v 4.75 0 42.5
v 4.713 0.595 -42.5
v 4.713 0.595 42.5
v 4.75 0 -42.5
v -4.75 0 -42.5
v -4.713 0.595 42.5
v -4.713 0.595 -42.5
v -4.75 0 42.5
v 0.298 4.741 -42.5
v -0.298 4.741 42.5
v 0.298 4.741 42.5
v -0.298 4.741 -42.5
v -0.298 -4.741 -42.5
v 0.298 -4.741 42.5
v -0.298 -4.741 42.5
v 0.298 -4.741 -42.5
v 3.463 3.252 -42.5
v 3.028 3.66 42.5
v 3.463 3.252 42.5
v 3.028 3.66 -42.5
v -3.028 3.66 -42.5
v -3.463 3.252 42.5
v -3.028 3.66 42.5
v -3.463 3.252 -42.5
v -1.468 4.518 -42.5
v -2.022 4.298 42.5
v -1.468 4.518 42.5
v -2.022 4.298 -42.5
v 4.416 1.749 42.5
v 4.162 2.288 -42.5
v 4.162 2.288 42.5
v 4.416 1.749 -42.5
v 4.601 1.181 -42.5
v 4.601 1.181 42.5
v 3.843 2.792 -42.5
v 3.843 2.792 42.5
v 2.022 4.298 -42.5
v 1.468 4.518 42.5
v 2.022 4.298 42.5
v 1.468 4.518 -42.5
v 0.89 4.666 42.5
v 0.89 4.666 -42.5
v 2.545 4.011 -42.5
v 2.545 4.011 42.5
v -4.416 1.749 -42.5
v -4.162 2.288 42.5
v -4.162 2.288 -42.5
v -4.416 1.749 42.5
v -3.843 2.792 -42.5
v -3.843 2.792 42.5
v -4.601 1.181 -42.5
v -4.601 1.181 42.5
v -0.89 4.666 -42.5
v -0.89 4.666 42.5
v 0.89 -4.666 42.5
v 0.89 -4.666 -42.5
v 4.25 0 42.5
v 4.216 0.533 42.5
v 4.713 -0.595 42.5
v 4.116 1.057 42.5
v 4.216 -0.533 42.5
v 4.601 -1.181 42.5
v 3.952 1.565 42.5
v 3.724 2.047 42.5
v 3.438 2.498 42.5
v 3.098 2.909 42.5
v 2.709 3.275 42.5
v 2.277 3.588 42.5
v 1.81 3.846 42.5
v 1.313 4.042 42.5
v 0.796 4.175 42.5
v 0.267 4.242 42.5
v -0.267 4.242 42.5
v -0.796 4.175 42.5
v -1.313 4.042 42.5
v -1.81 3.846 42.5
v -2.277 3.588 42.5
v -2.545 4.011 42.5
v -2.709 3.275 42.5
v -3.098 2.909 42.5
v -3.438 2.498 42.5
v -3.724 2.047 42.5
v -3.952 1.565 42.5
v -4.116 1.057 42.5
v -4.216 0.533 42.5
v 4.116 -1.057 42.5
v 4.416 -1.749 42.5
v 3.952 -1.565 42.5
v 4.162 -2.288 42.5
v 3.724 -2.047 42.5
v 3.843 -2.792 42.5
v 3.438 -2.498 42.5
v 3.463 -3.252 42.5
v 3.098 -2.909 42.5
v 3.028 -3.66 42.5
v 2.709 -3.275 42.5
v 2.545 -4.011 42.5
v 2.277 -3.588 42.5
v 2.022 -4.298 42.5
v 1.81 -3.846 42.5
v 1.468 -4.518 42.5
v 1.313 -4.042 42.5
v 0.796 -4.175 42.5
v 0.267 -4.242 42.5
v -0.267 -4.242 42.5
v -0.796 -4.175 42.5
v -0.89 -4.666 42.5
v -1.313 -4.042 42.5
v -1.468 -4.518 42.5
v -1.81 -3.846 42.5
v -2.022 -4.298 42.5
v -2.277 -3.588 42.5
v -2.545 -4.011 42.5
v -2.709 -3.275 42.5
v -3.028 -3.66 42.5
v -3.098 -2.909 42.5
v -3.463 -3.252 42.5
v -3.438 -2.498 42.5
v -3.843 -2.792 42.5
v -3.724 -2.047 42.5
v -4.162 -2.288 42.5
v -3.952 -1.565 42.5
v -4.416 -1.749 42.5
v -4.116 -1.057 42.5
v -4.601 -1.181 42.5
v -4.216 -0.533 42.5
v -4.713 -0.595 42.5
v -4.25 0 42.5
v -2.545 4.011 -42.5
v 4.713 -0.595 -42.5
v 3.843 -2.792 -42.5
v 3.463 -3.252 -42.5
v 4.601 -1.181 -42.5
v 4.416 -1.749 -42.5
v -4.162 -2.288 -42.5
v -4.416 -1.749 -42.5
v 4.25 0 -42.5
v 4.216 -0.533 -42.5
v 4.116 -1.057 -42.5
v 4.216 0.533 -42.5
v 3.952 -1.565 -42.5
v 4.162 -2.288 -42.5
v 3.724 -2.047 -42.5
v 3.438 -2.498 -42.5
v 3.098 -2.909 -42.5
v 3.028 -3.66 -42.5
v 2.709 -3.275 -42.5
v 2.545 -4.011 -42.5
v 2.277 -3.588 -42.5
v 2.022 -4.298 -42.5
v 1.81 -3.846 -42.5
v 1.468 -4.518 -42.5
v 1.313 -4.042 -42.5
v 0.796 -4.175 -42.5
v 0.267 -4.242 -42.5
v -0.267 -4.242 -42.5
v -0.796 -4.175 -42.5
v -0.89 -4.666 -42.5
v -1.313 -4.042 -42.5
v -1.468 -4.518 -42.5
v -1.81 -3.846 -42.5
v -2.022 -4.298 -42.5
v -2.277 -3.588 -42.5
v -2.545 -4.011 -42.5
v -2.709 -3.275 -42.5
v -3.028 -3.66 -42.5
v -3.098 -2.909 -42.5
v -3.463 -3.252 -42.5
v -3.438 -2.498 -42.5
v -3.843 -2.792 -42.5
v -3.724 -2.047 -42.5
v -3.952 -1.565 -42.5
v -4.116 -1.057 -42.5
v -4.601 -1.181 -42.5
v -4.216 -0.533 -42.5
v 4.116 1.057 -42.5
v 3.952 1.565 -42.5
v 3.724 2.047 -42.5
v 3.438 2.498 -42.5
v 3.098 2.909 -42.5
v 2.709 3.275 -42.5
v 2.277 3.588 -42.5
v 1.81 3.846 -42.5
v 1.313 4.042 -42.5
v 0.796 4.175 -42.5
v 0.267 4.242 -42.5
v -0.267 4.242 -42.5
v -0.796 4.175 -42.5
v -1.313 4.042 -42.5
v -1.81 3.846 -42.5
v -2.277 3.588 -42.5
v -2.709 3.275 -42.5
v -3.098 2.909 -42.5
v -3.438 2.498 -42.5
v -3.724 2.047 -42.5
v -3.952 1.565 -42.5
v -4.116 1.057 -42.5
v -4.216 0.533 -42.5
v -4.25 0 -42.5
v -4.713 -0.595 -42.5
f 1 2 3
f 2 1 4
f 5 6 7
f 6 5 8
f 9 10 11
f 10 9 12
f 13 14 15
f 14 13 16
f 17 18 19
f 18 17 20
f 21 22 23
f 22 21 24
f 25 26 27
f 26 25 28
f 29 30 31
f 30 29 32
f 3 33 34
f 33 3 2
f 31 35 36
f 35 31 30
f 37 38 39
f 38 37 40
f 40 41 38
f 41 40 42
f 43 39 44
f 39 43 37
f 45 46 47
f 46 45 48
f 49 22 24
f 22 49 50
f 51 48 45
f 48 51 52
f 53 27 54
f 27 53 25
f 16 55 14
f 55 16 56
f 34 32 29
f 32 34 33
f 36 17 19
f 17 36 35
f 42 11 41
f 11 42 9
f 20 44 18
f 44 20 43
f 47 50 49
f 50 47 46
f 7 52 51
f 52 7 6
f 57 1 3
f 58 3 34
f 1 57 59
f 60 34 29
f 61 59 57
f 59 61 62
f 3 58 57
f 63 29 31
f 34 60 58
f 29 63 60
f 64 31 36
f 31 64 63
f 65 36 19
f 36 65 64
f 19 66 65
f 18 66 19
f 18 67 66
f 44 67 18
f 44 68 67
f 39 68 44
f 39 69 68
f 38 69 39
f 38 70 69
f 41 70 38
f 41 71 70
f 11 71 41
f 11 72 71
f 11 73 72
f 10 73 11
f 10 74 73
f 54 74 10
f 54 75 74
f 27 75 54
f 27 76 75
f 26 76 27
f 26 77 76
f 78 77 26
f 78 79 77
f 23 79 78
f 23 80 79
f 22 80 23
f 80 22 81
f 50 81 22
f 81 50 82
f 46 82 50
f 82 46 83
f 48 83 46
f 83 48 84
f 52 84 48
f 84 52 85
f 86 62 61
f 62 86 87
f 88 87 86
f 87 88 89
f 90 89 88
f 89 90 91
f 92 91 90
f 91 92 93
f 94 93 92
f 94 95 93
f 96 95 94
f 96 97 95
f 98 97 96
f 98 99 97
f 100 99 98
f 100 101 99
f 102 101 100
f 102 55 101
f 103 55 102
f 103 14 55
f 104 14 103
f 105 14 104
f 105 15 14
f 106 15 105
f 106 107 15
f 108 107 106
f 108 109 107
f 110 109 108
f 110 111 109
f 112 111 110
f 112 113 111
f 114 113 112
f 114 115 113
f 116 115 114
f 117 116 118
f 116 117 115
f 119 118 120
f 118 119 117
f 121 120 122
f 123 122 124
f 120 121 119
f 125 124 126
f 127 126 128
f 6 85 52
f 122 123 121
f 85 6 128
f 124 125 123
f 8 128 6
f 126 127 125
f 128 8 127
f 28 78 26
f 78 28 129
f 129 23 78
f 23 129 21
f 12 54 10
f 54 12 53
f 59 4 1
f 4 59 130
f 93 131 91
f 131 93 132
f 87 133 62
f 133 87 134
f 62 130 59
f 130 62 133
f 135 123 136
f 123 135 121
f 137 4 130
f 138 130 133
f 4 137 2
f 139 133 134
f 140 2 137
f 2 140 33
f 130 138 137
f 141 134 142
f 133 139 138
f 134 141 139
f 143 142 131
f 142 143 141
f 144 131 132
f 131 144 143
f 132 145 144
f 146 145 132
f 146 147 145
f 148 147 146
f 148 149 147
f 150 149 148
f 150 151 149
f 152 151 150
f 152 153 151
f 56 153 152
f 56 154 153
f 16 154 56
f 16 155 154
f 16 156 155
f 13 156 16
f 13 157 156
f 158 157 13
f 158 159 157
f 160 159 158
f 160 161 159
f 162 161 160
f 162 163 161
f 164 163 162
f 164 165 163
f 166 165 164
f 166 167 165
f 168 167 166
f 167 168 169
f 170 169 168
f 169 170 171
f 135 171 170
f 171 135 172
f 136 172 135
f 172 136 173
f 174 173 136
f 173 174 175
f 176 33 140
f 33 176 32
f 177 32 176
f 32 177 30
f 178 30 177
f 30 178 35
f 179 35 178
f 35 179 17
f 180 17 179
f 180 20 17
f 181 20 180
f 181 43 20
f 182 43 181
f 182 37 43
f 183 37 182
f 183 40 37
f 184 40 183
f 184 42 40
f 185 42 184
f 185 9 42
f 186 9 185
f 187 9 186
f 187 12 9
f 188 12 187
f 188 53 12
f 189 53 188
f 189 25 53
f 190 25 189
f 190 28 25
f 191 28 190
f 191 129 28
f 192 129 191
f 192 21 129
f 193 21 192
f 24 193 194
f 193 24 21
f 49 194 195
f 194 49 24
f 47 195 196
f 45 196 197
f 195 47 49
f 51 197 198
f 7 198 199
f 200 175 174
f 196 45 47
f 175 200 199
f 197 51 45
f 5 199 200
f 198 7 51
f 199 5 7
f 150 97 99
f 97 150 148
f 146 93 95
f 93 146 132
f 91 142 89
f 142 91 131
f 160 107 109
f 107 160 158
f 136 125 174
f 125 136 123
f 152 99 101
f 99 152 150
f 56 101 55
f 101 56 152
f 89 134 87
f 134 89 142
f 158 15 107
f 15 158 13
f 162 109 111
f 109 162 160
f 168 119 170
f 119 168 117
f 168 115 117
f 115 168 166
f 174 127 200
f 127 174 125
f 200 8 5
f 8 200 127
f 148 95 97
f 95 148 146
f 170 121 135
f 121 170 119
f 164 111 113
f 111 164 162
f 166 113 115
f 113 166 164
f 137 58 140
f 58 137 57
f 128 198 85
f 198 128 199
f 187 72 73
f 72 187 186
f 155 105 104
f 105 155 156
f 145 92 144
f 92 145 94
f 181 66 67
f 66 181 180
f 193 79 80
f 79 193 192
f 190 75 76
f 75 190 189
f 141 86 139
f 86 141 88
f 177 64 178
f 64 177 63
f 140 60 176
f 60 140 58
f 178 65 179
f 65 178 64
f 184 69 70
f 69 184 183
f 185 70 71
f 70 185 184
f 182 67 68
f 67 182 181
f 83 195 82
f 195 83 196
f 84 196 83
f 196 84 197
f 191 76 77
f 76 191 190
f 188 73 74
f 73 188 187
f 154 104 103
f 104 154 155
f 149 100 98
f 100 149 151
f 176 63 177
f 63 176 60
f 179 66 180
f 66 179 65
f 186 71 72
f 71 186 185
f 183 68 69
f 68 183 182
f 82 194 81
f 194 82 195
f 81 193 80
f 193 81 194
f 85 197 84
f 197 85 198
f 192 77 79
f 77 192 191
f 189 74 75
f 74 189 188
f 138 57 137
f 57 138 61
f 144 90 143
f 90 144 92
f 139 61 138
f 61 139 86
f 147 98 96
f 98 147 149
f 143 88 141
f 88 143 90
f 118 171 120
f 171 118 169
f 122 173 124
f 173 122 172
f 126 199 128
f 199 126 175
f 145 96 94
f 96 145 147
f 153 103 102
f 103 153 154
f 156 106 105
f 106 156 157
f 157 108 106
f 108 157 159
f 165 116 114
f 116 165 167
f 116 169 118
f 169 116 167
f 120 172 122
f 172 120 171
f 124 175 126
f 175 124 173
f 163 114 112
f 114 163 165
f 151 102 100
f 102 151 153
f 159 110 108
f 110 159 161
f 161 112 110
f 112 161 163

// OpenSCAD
$fn = 50;


difference() {
	union() {
		translate(v = [0, 0, -42.5000000000]) {
			cylinder(h = 85, r = 4.7500000000);
		}
	}
	union() {
		translate(v = [0, 0, -100.0000000000]) {
			cylinder(h = 200, r = 4.2500000000);
		}
	}
}
